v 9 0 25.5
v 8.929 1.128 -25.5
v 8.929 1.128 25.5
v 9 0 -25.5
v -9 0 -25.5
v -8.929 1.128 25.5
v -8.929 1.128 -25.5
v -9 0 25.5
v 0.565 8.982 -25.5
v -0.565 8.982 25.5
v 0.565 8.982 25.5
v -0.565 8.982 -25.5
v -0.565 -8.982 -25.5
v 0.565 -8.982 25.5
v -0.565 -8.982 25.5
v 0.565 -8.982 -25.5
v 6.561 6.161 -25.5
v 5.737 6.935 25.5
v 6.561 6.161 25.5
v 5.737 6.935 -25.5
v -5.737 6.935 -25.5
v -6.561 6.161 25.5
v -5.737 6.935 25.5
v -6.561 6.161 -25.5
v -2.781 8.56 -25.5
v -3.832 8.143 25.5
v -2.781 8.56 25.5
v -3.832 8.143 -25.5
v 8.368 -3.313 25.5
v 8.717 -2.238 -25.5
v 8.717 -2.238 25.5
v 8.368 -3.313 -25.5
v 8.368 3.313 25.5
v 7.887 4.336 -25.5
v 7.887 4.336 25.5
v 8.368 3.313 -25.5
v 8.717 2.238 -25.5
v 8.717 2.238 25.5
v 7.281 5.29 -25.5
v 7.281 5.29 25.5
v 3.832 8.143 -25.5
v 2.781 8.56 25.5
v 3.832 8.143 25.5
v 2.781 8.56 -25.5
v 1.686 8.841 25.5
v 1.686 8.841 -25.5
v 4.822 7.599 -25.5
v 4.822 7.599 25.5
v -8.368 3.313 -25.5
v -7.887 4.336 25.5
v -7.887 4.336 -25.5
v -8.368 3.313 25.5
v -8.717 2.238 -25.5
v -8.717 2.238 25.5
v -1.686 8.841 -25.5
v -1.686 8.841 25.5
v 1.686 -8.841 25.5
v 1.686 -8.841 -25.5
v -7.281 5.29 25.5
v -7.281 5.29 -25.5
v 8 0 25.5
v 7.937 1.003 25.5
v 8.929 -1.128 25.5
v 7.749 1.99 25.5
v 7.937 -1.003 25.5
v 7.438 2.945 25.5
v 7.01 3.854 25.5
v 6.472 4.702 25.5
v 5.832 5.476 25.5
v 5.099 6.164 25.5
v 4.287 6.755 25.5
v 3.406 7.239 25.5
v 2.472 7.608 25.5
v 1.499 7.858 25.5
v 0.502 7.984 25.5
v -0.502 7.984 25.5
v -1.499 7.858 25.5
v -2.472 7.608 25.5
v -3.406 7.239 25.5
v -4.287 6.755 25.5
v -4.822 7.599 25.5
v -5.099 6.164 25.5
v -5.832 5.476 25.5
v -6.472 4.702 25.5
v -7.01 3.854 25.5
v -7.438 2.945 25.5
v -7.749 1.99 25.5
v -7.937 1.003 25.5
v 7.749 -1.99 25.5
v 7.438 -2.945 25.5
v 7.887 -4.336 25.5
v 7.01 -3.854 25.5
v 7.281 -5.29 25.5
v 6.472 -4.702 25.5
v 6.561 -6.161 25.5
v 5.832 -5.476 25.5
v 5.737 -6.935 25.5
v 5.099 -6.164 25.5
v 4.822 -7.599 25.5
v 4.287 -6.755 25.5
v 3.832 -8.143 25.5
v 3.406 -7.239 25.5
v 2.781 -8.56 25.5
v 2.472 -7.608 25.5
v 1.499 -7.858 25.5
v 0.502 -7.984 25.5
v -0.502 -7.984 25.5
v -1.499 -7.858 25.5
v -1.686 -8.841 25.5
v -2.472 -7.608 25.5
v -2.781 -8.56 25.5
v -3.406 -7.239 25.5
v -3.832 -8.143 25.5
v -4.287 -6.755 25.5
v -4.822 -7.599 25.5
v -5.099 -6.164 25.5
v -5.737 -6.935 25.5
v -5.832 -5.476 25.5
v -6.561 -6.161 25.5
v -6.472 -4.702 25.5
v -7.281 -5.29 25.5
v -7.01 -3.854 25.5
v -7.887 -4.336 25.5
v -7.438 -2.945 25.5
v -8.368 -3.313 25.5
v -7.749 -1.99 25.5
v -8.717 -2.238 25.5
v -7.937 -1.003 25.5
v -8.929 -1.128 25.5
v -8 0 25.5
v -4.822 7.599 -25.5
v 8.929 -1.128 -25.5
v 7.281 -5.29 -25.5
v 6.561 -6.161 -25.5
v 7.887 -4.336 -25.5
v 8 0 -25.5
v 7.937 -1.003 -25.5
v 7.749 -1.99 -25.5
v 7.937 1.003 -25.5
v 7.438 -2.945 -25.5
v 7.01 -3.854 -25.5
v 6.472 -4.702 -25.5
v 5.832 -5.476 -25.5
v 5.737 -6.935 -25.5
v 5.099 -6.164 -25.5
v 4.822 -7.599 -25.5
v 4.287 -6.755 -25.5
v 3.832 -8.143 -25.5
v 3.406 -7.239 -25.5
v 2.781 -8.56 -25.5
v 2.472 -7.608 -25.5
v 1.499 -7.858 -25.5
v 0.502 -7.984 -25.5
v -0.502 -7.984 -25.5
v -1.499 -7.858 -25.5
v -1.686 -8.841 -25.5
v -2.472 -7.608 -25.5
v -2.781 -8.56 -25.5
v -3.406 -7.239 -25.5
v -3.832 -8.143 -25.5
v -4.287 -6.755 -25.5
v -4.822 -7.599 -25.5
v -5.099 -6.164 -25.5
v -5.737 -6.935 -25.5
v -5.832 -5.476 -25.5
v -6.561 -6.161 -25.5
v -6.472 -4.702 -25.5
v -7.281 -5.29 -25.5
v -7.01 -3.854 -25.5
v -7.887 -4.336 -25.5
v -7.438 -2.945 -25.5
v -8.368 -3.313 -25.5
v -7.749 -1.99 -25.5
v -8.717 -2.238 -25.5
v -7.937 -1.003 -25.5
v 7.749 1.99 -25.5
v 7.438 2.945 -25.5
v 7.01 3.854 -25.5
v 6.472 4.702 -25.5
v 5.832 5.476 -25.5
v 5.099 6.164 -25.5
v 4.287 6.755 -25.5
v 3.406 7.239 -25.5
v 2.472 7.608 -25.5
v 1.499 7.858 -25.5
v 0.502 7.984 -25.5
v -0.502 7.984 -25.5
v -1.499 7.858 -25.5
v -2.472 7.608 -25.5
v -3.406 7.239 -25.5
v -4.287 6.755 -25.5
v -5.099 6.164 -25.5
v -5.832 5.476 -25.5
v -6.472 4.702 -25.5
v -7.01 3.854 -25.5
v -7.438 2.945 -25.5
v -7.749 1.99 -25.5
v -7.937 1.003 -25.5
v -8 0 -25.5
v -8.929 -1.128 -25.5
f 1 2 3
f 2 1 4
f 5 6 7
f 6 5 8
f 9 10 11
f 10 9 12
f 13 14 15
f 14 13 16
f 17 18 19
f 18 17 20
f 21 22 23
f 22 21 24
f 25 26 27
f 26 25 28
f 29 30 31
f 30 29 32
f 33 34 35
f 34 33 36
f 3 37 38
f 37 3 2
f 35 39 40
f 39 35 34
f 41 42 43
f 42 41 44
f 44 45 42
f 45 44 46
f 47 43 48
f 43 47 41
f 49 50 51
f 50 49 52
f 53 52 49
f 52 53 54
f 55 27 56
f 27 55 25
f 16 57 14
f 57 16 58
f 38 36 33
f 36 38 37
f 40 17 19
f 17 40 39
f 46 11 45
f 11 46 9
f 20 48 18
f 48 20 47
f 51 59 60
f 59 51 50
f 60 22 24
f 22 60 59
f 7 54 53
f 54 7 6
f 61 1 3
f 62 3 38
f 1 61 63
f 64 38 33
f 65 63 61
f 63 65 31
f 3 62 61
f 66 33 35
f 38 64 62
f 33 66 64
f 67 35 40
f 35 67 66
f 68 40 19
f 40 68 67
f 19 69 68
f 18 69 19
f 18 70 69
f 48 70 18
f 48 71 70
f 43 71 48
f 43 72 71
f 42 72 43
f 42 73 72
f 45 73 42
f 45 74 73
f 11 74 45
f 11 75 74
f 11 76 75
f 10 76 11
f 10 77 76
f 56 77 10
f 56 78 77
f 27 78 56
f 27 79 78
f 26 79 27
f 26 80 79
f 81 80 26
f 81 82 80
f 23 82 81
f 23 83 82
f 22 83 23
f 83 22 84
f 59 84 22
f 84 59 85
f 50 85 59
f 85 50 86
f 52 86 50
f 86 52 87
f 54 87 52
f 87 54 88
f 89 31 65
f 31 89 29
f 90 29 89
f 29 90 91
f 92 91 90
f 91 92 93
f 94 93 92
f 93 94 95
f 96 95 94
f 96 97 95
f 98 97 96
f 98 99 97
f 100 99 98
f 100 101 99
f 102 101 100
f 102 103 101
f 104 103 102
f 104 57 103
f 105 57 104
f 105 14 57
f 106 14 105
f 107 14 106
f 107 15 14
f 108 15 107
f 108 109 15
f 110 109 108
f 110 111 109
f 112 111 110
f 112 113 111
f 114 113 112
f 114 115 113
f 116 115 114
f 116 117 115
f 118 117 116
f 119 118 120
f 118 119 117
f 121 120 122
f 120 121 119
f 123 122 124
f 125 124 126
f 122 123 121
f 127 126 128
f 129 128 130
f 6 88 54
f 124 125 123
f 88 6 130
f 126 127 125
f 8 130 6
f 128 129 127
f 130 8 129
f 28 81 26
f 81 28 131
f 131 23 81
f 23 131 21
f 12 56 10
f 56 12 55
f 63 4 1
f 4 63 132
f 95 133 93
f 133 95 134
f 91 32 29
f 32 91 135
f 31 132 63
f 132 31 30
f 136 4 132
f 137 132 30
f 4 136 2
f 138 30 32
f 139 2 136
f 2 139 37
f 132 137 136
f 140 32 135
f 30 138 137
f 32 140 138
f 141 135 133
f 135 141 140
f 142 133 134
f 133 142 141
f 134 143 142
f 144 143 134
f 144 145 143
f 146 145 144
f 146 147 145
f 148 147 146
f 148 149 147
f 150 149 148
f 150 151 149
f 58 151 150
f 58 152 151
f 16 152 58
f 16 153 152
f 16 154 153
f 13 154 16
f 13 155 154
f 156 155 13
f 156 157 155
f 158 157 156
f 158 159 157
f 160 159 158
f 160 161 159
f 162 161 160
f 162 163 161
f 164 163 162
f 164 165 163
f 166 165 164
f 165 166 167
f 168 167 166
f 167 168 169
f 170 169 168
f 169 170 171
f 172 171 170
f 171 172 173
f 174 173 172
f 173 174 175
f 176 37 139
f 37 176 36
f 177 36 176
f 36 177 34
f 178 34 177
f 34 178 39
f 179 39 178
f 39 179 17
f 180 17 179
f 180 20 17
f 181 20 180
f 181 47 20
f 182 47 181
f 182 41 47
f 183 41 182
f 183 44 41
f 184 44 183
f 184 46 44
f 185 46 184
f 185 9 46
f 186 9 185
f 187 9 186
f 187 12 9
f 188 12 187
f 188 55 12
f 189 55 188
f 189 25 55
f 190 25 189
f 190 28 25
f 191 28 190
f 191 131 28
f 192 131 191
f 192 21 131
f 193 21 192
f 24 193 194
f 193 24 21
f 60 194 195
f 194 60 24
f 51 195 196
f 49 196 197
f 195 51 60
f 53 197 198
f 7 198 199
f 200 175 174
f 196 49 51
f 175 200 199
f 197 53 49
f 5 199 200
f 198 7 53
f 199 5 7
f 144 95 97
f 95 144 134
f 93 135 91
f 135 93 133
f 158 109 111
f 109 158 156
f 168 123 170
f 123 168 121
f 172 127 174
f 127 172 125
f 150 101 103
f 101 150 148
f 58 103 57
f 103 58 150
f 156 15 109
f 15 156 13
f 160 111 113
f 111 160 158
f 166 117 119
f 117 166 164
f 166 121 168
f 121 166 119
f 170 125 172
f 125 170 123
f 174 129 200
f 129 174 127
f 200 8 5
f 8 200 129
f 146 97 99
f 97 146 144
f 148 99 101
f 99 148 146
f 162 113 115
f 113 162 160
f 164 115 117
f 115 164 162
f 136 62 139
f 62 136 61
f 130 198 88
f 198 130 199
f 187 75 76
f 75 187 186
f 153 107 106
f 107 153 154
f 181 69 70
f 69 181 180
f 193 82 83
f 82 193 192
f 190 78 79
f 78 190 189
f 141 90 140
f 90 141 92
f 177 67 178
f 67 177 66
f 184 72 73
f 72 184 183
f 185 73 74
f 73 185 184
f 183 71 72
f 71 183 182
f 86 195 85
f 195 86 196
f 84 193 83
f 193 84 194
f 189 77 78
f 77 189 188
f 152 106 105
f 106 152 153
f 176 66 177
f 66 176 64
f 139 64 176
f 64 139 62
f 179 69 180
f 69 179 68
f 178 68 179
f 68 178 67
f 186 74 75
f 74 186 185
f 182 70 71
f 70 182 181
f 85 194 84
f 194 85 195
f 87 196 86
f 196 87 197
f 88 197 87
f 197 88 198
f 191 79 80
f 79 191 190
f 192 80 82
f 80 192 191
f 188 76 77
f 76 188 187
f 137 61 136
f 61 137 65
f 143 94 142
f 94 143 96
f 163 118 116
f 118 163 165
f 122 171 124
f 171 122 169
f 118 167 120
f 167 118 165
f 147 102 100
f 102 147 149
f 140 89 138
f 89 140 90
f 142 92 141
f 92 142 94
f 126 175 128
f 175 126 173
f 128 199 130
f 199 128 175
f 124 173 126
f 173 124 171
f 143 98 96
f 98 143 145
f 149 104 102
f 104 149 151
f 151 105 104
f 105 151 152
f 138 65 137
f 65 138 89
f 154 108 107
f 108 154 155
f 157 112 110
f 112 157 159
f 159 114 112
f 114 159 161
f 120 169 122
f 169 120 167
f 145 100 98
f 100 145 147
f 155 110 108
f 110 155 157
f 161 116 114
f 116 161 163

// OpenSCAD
$fn = 50;


difference() {
	union() {
		translate(v = [0, 0, -25.5000000000]) {
			cylinder(h = 51, r = 9.0000000000);
		}
	}
	union() {
		translate(v = [0, 0, -100.0000000000]) {
			cylinder(h = 200, r = 8);
		}
	}
}
